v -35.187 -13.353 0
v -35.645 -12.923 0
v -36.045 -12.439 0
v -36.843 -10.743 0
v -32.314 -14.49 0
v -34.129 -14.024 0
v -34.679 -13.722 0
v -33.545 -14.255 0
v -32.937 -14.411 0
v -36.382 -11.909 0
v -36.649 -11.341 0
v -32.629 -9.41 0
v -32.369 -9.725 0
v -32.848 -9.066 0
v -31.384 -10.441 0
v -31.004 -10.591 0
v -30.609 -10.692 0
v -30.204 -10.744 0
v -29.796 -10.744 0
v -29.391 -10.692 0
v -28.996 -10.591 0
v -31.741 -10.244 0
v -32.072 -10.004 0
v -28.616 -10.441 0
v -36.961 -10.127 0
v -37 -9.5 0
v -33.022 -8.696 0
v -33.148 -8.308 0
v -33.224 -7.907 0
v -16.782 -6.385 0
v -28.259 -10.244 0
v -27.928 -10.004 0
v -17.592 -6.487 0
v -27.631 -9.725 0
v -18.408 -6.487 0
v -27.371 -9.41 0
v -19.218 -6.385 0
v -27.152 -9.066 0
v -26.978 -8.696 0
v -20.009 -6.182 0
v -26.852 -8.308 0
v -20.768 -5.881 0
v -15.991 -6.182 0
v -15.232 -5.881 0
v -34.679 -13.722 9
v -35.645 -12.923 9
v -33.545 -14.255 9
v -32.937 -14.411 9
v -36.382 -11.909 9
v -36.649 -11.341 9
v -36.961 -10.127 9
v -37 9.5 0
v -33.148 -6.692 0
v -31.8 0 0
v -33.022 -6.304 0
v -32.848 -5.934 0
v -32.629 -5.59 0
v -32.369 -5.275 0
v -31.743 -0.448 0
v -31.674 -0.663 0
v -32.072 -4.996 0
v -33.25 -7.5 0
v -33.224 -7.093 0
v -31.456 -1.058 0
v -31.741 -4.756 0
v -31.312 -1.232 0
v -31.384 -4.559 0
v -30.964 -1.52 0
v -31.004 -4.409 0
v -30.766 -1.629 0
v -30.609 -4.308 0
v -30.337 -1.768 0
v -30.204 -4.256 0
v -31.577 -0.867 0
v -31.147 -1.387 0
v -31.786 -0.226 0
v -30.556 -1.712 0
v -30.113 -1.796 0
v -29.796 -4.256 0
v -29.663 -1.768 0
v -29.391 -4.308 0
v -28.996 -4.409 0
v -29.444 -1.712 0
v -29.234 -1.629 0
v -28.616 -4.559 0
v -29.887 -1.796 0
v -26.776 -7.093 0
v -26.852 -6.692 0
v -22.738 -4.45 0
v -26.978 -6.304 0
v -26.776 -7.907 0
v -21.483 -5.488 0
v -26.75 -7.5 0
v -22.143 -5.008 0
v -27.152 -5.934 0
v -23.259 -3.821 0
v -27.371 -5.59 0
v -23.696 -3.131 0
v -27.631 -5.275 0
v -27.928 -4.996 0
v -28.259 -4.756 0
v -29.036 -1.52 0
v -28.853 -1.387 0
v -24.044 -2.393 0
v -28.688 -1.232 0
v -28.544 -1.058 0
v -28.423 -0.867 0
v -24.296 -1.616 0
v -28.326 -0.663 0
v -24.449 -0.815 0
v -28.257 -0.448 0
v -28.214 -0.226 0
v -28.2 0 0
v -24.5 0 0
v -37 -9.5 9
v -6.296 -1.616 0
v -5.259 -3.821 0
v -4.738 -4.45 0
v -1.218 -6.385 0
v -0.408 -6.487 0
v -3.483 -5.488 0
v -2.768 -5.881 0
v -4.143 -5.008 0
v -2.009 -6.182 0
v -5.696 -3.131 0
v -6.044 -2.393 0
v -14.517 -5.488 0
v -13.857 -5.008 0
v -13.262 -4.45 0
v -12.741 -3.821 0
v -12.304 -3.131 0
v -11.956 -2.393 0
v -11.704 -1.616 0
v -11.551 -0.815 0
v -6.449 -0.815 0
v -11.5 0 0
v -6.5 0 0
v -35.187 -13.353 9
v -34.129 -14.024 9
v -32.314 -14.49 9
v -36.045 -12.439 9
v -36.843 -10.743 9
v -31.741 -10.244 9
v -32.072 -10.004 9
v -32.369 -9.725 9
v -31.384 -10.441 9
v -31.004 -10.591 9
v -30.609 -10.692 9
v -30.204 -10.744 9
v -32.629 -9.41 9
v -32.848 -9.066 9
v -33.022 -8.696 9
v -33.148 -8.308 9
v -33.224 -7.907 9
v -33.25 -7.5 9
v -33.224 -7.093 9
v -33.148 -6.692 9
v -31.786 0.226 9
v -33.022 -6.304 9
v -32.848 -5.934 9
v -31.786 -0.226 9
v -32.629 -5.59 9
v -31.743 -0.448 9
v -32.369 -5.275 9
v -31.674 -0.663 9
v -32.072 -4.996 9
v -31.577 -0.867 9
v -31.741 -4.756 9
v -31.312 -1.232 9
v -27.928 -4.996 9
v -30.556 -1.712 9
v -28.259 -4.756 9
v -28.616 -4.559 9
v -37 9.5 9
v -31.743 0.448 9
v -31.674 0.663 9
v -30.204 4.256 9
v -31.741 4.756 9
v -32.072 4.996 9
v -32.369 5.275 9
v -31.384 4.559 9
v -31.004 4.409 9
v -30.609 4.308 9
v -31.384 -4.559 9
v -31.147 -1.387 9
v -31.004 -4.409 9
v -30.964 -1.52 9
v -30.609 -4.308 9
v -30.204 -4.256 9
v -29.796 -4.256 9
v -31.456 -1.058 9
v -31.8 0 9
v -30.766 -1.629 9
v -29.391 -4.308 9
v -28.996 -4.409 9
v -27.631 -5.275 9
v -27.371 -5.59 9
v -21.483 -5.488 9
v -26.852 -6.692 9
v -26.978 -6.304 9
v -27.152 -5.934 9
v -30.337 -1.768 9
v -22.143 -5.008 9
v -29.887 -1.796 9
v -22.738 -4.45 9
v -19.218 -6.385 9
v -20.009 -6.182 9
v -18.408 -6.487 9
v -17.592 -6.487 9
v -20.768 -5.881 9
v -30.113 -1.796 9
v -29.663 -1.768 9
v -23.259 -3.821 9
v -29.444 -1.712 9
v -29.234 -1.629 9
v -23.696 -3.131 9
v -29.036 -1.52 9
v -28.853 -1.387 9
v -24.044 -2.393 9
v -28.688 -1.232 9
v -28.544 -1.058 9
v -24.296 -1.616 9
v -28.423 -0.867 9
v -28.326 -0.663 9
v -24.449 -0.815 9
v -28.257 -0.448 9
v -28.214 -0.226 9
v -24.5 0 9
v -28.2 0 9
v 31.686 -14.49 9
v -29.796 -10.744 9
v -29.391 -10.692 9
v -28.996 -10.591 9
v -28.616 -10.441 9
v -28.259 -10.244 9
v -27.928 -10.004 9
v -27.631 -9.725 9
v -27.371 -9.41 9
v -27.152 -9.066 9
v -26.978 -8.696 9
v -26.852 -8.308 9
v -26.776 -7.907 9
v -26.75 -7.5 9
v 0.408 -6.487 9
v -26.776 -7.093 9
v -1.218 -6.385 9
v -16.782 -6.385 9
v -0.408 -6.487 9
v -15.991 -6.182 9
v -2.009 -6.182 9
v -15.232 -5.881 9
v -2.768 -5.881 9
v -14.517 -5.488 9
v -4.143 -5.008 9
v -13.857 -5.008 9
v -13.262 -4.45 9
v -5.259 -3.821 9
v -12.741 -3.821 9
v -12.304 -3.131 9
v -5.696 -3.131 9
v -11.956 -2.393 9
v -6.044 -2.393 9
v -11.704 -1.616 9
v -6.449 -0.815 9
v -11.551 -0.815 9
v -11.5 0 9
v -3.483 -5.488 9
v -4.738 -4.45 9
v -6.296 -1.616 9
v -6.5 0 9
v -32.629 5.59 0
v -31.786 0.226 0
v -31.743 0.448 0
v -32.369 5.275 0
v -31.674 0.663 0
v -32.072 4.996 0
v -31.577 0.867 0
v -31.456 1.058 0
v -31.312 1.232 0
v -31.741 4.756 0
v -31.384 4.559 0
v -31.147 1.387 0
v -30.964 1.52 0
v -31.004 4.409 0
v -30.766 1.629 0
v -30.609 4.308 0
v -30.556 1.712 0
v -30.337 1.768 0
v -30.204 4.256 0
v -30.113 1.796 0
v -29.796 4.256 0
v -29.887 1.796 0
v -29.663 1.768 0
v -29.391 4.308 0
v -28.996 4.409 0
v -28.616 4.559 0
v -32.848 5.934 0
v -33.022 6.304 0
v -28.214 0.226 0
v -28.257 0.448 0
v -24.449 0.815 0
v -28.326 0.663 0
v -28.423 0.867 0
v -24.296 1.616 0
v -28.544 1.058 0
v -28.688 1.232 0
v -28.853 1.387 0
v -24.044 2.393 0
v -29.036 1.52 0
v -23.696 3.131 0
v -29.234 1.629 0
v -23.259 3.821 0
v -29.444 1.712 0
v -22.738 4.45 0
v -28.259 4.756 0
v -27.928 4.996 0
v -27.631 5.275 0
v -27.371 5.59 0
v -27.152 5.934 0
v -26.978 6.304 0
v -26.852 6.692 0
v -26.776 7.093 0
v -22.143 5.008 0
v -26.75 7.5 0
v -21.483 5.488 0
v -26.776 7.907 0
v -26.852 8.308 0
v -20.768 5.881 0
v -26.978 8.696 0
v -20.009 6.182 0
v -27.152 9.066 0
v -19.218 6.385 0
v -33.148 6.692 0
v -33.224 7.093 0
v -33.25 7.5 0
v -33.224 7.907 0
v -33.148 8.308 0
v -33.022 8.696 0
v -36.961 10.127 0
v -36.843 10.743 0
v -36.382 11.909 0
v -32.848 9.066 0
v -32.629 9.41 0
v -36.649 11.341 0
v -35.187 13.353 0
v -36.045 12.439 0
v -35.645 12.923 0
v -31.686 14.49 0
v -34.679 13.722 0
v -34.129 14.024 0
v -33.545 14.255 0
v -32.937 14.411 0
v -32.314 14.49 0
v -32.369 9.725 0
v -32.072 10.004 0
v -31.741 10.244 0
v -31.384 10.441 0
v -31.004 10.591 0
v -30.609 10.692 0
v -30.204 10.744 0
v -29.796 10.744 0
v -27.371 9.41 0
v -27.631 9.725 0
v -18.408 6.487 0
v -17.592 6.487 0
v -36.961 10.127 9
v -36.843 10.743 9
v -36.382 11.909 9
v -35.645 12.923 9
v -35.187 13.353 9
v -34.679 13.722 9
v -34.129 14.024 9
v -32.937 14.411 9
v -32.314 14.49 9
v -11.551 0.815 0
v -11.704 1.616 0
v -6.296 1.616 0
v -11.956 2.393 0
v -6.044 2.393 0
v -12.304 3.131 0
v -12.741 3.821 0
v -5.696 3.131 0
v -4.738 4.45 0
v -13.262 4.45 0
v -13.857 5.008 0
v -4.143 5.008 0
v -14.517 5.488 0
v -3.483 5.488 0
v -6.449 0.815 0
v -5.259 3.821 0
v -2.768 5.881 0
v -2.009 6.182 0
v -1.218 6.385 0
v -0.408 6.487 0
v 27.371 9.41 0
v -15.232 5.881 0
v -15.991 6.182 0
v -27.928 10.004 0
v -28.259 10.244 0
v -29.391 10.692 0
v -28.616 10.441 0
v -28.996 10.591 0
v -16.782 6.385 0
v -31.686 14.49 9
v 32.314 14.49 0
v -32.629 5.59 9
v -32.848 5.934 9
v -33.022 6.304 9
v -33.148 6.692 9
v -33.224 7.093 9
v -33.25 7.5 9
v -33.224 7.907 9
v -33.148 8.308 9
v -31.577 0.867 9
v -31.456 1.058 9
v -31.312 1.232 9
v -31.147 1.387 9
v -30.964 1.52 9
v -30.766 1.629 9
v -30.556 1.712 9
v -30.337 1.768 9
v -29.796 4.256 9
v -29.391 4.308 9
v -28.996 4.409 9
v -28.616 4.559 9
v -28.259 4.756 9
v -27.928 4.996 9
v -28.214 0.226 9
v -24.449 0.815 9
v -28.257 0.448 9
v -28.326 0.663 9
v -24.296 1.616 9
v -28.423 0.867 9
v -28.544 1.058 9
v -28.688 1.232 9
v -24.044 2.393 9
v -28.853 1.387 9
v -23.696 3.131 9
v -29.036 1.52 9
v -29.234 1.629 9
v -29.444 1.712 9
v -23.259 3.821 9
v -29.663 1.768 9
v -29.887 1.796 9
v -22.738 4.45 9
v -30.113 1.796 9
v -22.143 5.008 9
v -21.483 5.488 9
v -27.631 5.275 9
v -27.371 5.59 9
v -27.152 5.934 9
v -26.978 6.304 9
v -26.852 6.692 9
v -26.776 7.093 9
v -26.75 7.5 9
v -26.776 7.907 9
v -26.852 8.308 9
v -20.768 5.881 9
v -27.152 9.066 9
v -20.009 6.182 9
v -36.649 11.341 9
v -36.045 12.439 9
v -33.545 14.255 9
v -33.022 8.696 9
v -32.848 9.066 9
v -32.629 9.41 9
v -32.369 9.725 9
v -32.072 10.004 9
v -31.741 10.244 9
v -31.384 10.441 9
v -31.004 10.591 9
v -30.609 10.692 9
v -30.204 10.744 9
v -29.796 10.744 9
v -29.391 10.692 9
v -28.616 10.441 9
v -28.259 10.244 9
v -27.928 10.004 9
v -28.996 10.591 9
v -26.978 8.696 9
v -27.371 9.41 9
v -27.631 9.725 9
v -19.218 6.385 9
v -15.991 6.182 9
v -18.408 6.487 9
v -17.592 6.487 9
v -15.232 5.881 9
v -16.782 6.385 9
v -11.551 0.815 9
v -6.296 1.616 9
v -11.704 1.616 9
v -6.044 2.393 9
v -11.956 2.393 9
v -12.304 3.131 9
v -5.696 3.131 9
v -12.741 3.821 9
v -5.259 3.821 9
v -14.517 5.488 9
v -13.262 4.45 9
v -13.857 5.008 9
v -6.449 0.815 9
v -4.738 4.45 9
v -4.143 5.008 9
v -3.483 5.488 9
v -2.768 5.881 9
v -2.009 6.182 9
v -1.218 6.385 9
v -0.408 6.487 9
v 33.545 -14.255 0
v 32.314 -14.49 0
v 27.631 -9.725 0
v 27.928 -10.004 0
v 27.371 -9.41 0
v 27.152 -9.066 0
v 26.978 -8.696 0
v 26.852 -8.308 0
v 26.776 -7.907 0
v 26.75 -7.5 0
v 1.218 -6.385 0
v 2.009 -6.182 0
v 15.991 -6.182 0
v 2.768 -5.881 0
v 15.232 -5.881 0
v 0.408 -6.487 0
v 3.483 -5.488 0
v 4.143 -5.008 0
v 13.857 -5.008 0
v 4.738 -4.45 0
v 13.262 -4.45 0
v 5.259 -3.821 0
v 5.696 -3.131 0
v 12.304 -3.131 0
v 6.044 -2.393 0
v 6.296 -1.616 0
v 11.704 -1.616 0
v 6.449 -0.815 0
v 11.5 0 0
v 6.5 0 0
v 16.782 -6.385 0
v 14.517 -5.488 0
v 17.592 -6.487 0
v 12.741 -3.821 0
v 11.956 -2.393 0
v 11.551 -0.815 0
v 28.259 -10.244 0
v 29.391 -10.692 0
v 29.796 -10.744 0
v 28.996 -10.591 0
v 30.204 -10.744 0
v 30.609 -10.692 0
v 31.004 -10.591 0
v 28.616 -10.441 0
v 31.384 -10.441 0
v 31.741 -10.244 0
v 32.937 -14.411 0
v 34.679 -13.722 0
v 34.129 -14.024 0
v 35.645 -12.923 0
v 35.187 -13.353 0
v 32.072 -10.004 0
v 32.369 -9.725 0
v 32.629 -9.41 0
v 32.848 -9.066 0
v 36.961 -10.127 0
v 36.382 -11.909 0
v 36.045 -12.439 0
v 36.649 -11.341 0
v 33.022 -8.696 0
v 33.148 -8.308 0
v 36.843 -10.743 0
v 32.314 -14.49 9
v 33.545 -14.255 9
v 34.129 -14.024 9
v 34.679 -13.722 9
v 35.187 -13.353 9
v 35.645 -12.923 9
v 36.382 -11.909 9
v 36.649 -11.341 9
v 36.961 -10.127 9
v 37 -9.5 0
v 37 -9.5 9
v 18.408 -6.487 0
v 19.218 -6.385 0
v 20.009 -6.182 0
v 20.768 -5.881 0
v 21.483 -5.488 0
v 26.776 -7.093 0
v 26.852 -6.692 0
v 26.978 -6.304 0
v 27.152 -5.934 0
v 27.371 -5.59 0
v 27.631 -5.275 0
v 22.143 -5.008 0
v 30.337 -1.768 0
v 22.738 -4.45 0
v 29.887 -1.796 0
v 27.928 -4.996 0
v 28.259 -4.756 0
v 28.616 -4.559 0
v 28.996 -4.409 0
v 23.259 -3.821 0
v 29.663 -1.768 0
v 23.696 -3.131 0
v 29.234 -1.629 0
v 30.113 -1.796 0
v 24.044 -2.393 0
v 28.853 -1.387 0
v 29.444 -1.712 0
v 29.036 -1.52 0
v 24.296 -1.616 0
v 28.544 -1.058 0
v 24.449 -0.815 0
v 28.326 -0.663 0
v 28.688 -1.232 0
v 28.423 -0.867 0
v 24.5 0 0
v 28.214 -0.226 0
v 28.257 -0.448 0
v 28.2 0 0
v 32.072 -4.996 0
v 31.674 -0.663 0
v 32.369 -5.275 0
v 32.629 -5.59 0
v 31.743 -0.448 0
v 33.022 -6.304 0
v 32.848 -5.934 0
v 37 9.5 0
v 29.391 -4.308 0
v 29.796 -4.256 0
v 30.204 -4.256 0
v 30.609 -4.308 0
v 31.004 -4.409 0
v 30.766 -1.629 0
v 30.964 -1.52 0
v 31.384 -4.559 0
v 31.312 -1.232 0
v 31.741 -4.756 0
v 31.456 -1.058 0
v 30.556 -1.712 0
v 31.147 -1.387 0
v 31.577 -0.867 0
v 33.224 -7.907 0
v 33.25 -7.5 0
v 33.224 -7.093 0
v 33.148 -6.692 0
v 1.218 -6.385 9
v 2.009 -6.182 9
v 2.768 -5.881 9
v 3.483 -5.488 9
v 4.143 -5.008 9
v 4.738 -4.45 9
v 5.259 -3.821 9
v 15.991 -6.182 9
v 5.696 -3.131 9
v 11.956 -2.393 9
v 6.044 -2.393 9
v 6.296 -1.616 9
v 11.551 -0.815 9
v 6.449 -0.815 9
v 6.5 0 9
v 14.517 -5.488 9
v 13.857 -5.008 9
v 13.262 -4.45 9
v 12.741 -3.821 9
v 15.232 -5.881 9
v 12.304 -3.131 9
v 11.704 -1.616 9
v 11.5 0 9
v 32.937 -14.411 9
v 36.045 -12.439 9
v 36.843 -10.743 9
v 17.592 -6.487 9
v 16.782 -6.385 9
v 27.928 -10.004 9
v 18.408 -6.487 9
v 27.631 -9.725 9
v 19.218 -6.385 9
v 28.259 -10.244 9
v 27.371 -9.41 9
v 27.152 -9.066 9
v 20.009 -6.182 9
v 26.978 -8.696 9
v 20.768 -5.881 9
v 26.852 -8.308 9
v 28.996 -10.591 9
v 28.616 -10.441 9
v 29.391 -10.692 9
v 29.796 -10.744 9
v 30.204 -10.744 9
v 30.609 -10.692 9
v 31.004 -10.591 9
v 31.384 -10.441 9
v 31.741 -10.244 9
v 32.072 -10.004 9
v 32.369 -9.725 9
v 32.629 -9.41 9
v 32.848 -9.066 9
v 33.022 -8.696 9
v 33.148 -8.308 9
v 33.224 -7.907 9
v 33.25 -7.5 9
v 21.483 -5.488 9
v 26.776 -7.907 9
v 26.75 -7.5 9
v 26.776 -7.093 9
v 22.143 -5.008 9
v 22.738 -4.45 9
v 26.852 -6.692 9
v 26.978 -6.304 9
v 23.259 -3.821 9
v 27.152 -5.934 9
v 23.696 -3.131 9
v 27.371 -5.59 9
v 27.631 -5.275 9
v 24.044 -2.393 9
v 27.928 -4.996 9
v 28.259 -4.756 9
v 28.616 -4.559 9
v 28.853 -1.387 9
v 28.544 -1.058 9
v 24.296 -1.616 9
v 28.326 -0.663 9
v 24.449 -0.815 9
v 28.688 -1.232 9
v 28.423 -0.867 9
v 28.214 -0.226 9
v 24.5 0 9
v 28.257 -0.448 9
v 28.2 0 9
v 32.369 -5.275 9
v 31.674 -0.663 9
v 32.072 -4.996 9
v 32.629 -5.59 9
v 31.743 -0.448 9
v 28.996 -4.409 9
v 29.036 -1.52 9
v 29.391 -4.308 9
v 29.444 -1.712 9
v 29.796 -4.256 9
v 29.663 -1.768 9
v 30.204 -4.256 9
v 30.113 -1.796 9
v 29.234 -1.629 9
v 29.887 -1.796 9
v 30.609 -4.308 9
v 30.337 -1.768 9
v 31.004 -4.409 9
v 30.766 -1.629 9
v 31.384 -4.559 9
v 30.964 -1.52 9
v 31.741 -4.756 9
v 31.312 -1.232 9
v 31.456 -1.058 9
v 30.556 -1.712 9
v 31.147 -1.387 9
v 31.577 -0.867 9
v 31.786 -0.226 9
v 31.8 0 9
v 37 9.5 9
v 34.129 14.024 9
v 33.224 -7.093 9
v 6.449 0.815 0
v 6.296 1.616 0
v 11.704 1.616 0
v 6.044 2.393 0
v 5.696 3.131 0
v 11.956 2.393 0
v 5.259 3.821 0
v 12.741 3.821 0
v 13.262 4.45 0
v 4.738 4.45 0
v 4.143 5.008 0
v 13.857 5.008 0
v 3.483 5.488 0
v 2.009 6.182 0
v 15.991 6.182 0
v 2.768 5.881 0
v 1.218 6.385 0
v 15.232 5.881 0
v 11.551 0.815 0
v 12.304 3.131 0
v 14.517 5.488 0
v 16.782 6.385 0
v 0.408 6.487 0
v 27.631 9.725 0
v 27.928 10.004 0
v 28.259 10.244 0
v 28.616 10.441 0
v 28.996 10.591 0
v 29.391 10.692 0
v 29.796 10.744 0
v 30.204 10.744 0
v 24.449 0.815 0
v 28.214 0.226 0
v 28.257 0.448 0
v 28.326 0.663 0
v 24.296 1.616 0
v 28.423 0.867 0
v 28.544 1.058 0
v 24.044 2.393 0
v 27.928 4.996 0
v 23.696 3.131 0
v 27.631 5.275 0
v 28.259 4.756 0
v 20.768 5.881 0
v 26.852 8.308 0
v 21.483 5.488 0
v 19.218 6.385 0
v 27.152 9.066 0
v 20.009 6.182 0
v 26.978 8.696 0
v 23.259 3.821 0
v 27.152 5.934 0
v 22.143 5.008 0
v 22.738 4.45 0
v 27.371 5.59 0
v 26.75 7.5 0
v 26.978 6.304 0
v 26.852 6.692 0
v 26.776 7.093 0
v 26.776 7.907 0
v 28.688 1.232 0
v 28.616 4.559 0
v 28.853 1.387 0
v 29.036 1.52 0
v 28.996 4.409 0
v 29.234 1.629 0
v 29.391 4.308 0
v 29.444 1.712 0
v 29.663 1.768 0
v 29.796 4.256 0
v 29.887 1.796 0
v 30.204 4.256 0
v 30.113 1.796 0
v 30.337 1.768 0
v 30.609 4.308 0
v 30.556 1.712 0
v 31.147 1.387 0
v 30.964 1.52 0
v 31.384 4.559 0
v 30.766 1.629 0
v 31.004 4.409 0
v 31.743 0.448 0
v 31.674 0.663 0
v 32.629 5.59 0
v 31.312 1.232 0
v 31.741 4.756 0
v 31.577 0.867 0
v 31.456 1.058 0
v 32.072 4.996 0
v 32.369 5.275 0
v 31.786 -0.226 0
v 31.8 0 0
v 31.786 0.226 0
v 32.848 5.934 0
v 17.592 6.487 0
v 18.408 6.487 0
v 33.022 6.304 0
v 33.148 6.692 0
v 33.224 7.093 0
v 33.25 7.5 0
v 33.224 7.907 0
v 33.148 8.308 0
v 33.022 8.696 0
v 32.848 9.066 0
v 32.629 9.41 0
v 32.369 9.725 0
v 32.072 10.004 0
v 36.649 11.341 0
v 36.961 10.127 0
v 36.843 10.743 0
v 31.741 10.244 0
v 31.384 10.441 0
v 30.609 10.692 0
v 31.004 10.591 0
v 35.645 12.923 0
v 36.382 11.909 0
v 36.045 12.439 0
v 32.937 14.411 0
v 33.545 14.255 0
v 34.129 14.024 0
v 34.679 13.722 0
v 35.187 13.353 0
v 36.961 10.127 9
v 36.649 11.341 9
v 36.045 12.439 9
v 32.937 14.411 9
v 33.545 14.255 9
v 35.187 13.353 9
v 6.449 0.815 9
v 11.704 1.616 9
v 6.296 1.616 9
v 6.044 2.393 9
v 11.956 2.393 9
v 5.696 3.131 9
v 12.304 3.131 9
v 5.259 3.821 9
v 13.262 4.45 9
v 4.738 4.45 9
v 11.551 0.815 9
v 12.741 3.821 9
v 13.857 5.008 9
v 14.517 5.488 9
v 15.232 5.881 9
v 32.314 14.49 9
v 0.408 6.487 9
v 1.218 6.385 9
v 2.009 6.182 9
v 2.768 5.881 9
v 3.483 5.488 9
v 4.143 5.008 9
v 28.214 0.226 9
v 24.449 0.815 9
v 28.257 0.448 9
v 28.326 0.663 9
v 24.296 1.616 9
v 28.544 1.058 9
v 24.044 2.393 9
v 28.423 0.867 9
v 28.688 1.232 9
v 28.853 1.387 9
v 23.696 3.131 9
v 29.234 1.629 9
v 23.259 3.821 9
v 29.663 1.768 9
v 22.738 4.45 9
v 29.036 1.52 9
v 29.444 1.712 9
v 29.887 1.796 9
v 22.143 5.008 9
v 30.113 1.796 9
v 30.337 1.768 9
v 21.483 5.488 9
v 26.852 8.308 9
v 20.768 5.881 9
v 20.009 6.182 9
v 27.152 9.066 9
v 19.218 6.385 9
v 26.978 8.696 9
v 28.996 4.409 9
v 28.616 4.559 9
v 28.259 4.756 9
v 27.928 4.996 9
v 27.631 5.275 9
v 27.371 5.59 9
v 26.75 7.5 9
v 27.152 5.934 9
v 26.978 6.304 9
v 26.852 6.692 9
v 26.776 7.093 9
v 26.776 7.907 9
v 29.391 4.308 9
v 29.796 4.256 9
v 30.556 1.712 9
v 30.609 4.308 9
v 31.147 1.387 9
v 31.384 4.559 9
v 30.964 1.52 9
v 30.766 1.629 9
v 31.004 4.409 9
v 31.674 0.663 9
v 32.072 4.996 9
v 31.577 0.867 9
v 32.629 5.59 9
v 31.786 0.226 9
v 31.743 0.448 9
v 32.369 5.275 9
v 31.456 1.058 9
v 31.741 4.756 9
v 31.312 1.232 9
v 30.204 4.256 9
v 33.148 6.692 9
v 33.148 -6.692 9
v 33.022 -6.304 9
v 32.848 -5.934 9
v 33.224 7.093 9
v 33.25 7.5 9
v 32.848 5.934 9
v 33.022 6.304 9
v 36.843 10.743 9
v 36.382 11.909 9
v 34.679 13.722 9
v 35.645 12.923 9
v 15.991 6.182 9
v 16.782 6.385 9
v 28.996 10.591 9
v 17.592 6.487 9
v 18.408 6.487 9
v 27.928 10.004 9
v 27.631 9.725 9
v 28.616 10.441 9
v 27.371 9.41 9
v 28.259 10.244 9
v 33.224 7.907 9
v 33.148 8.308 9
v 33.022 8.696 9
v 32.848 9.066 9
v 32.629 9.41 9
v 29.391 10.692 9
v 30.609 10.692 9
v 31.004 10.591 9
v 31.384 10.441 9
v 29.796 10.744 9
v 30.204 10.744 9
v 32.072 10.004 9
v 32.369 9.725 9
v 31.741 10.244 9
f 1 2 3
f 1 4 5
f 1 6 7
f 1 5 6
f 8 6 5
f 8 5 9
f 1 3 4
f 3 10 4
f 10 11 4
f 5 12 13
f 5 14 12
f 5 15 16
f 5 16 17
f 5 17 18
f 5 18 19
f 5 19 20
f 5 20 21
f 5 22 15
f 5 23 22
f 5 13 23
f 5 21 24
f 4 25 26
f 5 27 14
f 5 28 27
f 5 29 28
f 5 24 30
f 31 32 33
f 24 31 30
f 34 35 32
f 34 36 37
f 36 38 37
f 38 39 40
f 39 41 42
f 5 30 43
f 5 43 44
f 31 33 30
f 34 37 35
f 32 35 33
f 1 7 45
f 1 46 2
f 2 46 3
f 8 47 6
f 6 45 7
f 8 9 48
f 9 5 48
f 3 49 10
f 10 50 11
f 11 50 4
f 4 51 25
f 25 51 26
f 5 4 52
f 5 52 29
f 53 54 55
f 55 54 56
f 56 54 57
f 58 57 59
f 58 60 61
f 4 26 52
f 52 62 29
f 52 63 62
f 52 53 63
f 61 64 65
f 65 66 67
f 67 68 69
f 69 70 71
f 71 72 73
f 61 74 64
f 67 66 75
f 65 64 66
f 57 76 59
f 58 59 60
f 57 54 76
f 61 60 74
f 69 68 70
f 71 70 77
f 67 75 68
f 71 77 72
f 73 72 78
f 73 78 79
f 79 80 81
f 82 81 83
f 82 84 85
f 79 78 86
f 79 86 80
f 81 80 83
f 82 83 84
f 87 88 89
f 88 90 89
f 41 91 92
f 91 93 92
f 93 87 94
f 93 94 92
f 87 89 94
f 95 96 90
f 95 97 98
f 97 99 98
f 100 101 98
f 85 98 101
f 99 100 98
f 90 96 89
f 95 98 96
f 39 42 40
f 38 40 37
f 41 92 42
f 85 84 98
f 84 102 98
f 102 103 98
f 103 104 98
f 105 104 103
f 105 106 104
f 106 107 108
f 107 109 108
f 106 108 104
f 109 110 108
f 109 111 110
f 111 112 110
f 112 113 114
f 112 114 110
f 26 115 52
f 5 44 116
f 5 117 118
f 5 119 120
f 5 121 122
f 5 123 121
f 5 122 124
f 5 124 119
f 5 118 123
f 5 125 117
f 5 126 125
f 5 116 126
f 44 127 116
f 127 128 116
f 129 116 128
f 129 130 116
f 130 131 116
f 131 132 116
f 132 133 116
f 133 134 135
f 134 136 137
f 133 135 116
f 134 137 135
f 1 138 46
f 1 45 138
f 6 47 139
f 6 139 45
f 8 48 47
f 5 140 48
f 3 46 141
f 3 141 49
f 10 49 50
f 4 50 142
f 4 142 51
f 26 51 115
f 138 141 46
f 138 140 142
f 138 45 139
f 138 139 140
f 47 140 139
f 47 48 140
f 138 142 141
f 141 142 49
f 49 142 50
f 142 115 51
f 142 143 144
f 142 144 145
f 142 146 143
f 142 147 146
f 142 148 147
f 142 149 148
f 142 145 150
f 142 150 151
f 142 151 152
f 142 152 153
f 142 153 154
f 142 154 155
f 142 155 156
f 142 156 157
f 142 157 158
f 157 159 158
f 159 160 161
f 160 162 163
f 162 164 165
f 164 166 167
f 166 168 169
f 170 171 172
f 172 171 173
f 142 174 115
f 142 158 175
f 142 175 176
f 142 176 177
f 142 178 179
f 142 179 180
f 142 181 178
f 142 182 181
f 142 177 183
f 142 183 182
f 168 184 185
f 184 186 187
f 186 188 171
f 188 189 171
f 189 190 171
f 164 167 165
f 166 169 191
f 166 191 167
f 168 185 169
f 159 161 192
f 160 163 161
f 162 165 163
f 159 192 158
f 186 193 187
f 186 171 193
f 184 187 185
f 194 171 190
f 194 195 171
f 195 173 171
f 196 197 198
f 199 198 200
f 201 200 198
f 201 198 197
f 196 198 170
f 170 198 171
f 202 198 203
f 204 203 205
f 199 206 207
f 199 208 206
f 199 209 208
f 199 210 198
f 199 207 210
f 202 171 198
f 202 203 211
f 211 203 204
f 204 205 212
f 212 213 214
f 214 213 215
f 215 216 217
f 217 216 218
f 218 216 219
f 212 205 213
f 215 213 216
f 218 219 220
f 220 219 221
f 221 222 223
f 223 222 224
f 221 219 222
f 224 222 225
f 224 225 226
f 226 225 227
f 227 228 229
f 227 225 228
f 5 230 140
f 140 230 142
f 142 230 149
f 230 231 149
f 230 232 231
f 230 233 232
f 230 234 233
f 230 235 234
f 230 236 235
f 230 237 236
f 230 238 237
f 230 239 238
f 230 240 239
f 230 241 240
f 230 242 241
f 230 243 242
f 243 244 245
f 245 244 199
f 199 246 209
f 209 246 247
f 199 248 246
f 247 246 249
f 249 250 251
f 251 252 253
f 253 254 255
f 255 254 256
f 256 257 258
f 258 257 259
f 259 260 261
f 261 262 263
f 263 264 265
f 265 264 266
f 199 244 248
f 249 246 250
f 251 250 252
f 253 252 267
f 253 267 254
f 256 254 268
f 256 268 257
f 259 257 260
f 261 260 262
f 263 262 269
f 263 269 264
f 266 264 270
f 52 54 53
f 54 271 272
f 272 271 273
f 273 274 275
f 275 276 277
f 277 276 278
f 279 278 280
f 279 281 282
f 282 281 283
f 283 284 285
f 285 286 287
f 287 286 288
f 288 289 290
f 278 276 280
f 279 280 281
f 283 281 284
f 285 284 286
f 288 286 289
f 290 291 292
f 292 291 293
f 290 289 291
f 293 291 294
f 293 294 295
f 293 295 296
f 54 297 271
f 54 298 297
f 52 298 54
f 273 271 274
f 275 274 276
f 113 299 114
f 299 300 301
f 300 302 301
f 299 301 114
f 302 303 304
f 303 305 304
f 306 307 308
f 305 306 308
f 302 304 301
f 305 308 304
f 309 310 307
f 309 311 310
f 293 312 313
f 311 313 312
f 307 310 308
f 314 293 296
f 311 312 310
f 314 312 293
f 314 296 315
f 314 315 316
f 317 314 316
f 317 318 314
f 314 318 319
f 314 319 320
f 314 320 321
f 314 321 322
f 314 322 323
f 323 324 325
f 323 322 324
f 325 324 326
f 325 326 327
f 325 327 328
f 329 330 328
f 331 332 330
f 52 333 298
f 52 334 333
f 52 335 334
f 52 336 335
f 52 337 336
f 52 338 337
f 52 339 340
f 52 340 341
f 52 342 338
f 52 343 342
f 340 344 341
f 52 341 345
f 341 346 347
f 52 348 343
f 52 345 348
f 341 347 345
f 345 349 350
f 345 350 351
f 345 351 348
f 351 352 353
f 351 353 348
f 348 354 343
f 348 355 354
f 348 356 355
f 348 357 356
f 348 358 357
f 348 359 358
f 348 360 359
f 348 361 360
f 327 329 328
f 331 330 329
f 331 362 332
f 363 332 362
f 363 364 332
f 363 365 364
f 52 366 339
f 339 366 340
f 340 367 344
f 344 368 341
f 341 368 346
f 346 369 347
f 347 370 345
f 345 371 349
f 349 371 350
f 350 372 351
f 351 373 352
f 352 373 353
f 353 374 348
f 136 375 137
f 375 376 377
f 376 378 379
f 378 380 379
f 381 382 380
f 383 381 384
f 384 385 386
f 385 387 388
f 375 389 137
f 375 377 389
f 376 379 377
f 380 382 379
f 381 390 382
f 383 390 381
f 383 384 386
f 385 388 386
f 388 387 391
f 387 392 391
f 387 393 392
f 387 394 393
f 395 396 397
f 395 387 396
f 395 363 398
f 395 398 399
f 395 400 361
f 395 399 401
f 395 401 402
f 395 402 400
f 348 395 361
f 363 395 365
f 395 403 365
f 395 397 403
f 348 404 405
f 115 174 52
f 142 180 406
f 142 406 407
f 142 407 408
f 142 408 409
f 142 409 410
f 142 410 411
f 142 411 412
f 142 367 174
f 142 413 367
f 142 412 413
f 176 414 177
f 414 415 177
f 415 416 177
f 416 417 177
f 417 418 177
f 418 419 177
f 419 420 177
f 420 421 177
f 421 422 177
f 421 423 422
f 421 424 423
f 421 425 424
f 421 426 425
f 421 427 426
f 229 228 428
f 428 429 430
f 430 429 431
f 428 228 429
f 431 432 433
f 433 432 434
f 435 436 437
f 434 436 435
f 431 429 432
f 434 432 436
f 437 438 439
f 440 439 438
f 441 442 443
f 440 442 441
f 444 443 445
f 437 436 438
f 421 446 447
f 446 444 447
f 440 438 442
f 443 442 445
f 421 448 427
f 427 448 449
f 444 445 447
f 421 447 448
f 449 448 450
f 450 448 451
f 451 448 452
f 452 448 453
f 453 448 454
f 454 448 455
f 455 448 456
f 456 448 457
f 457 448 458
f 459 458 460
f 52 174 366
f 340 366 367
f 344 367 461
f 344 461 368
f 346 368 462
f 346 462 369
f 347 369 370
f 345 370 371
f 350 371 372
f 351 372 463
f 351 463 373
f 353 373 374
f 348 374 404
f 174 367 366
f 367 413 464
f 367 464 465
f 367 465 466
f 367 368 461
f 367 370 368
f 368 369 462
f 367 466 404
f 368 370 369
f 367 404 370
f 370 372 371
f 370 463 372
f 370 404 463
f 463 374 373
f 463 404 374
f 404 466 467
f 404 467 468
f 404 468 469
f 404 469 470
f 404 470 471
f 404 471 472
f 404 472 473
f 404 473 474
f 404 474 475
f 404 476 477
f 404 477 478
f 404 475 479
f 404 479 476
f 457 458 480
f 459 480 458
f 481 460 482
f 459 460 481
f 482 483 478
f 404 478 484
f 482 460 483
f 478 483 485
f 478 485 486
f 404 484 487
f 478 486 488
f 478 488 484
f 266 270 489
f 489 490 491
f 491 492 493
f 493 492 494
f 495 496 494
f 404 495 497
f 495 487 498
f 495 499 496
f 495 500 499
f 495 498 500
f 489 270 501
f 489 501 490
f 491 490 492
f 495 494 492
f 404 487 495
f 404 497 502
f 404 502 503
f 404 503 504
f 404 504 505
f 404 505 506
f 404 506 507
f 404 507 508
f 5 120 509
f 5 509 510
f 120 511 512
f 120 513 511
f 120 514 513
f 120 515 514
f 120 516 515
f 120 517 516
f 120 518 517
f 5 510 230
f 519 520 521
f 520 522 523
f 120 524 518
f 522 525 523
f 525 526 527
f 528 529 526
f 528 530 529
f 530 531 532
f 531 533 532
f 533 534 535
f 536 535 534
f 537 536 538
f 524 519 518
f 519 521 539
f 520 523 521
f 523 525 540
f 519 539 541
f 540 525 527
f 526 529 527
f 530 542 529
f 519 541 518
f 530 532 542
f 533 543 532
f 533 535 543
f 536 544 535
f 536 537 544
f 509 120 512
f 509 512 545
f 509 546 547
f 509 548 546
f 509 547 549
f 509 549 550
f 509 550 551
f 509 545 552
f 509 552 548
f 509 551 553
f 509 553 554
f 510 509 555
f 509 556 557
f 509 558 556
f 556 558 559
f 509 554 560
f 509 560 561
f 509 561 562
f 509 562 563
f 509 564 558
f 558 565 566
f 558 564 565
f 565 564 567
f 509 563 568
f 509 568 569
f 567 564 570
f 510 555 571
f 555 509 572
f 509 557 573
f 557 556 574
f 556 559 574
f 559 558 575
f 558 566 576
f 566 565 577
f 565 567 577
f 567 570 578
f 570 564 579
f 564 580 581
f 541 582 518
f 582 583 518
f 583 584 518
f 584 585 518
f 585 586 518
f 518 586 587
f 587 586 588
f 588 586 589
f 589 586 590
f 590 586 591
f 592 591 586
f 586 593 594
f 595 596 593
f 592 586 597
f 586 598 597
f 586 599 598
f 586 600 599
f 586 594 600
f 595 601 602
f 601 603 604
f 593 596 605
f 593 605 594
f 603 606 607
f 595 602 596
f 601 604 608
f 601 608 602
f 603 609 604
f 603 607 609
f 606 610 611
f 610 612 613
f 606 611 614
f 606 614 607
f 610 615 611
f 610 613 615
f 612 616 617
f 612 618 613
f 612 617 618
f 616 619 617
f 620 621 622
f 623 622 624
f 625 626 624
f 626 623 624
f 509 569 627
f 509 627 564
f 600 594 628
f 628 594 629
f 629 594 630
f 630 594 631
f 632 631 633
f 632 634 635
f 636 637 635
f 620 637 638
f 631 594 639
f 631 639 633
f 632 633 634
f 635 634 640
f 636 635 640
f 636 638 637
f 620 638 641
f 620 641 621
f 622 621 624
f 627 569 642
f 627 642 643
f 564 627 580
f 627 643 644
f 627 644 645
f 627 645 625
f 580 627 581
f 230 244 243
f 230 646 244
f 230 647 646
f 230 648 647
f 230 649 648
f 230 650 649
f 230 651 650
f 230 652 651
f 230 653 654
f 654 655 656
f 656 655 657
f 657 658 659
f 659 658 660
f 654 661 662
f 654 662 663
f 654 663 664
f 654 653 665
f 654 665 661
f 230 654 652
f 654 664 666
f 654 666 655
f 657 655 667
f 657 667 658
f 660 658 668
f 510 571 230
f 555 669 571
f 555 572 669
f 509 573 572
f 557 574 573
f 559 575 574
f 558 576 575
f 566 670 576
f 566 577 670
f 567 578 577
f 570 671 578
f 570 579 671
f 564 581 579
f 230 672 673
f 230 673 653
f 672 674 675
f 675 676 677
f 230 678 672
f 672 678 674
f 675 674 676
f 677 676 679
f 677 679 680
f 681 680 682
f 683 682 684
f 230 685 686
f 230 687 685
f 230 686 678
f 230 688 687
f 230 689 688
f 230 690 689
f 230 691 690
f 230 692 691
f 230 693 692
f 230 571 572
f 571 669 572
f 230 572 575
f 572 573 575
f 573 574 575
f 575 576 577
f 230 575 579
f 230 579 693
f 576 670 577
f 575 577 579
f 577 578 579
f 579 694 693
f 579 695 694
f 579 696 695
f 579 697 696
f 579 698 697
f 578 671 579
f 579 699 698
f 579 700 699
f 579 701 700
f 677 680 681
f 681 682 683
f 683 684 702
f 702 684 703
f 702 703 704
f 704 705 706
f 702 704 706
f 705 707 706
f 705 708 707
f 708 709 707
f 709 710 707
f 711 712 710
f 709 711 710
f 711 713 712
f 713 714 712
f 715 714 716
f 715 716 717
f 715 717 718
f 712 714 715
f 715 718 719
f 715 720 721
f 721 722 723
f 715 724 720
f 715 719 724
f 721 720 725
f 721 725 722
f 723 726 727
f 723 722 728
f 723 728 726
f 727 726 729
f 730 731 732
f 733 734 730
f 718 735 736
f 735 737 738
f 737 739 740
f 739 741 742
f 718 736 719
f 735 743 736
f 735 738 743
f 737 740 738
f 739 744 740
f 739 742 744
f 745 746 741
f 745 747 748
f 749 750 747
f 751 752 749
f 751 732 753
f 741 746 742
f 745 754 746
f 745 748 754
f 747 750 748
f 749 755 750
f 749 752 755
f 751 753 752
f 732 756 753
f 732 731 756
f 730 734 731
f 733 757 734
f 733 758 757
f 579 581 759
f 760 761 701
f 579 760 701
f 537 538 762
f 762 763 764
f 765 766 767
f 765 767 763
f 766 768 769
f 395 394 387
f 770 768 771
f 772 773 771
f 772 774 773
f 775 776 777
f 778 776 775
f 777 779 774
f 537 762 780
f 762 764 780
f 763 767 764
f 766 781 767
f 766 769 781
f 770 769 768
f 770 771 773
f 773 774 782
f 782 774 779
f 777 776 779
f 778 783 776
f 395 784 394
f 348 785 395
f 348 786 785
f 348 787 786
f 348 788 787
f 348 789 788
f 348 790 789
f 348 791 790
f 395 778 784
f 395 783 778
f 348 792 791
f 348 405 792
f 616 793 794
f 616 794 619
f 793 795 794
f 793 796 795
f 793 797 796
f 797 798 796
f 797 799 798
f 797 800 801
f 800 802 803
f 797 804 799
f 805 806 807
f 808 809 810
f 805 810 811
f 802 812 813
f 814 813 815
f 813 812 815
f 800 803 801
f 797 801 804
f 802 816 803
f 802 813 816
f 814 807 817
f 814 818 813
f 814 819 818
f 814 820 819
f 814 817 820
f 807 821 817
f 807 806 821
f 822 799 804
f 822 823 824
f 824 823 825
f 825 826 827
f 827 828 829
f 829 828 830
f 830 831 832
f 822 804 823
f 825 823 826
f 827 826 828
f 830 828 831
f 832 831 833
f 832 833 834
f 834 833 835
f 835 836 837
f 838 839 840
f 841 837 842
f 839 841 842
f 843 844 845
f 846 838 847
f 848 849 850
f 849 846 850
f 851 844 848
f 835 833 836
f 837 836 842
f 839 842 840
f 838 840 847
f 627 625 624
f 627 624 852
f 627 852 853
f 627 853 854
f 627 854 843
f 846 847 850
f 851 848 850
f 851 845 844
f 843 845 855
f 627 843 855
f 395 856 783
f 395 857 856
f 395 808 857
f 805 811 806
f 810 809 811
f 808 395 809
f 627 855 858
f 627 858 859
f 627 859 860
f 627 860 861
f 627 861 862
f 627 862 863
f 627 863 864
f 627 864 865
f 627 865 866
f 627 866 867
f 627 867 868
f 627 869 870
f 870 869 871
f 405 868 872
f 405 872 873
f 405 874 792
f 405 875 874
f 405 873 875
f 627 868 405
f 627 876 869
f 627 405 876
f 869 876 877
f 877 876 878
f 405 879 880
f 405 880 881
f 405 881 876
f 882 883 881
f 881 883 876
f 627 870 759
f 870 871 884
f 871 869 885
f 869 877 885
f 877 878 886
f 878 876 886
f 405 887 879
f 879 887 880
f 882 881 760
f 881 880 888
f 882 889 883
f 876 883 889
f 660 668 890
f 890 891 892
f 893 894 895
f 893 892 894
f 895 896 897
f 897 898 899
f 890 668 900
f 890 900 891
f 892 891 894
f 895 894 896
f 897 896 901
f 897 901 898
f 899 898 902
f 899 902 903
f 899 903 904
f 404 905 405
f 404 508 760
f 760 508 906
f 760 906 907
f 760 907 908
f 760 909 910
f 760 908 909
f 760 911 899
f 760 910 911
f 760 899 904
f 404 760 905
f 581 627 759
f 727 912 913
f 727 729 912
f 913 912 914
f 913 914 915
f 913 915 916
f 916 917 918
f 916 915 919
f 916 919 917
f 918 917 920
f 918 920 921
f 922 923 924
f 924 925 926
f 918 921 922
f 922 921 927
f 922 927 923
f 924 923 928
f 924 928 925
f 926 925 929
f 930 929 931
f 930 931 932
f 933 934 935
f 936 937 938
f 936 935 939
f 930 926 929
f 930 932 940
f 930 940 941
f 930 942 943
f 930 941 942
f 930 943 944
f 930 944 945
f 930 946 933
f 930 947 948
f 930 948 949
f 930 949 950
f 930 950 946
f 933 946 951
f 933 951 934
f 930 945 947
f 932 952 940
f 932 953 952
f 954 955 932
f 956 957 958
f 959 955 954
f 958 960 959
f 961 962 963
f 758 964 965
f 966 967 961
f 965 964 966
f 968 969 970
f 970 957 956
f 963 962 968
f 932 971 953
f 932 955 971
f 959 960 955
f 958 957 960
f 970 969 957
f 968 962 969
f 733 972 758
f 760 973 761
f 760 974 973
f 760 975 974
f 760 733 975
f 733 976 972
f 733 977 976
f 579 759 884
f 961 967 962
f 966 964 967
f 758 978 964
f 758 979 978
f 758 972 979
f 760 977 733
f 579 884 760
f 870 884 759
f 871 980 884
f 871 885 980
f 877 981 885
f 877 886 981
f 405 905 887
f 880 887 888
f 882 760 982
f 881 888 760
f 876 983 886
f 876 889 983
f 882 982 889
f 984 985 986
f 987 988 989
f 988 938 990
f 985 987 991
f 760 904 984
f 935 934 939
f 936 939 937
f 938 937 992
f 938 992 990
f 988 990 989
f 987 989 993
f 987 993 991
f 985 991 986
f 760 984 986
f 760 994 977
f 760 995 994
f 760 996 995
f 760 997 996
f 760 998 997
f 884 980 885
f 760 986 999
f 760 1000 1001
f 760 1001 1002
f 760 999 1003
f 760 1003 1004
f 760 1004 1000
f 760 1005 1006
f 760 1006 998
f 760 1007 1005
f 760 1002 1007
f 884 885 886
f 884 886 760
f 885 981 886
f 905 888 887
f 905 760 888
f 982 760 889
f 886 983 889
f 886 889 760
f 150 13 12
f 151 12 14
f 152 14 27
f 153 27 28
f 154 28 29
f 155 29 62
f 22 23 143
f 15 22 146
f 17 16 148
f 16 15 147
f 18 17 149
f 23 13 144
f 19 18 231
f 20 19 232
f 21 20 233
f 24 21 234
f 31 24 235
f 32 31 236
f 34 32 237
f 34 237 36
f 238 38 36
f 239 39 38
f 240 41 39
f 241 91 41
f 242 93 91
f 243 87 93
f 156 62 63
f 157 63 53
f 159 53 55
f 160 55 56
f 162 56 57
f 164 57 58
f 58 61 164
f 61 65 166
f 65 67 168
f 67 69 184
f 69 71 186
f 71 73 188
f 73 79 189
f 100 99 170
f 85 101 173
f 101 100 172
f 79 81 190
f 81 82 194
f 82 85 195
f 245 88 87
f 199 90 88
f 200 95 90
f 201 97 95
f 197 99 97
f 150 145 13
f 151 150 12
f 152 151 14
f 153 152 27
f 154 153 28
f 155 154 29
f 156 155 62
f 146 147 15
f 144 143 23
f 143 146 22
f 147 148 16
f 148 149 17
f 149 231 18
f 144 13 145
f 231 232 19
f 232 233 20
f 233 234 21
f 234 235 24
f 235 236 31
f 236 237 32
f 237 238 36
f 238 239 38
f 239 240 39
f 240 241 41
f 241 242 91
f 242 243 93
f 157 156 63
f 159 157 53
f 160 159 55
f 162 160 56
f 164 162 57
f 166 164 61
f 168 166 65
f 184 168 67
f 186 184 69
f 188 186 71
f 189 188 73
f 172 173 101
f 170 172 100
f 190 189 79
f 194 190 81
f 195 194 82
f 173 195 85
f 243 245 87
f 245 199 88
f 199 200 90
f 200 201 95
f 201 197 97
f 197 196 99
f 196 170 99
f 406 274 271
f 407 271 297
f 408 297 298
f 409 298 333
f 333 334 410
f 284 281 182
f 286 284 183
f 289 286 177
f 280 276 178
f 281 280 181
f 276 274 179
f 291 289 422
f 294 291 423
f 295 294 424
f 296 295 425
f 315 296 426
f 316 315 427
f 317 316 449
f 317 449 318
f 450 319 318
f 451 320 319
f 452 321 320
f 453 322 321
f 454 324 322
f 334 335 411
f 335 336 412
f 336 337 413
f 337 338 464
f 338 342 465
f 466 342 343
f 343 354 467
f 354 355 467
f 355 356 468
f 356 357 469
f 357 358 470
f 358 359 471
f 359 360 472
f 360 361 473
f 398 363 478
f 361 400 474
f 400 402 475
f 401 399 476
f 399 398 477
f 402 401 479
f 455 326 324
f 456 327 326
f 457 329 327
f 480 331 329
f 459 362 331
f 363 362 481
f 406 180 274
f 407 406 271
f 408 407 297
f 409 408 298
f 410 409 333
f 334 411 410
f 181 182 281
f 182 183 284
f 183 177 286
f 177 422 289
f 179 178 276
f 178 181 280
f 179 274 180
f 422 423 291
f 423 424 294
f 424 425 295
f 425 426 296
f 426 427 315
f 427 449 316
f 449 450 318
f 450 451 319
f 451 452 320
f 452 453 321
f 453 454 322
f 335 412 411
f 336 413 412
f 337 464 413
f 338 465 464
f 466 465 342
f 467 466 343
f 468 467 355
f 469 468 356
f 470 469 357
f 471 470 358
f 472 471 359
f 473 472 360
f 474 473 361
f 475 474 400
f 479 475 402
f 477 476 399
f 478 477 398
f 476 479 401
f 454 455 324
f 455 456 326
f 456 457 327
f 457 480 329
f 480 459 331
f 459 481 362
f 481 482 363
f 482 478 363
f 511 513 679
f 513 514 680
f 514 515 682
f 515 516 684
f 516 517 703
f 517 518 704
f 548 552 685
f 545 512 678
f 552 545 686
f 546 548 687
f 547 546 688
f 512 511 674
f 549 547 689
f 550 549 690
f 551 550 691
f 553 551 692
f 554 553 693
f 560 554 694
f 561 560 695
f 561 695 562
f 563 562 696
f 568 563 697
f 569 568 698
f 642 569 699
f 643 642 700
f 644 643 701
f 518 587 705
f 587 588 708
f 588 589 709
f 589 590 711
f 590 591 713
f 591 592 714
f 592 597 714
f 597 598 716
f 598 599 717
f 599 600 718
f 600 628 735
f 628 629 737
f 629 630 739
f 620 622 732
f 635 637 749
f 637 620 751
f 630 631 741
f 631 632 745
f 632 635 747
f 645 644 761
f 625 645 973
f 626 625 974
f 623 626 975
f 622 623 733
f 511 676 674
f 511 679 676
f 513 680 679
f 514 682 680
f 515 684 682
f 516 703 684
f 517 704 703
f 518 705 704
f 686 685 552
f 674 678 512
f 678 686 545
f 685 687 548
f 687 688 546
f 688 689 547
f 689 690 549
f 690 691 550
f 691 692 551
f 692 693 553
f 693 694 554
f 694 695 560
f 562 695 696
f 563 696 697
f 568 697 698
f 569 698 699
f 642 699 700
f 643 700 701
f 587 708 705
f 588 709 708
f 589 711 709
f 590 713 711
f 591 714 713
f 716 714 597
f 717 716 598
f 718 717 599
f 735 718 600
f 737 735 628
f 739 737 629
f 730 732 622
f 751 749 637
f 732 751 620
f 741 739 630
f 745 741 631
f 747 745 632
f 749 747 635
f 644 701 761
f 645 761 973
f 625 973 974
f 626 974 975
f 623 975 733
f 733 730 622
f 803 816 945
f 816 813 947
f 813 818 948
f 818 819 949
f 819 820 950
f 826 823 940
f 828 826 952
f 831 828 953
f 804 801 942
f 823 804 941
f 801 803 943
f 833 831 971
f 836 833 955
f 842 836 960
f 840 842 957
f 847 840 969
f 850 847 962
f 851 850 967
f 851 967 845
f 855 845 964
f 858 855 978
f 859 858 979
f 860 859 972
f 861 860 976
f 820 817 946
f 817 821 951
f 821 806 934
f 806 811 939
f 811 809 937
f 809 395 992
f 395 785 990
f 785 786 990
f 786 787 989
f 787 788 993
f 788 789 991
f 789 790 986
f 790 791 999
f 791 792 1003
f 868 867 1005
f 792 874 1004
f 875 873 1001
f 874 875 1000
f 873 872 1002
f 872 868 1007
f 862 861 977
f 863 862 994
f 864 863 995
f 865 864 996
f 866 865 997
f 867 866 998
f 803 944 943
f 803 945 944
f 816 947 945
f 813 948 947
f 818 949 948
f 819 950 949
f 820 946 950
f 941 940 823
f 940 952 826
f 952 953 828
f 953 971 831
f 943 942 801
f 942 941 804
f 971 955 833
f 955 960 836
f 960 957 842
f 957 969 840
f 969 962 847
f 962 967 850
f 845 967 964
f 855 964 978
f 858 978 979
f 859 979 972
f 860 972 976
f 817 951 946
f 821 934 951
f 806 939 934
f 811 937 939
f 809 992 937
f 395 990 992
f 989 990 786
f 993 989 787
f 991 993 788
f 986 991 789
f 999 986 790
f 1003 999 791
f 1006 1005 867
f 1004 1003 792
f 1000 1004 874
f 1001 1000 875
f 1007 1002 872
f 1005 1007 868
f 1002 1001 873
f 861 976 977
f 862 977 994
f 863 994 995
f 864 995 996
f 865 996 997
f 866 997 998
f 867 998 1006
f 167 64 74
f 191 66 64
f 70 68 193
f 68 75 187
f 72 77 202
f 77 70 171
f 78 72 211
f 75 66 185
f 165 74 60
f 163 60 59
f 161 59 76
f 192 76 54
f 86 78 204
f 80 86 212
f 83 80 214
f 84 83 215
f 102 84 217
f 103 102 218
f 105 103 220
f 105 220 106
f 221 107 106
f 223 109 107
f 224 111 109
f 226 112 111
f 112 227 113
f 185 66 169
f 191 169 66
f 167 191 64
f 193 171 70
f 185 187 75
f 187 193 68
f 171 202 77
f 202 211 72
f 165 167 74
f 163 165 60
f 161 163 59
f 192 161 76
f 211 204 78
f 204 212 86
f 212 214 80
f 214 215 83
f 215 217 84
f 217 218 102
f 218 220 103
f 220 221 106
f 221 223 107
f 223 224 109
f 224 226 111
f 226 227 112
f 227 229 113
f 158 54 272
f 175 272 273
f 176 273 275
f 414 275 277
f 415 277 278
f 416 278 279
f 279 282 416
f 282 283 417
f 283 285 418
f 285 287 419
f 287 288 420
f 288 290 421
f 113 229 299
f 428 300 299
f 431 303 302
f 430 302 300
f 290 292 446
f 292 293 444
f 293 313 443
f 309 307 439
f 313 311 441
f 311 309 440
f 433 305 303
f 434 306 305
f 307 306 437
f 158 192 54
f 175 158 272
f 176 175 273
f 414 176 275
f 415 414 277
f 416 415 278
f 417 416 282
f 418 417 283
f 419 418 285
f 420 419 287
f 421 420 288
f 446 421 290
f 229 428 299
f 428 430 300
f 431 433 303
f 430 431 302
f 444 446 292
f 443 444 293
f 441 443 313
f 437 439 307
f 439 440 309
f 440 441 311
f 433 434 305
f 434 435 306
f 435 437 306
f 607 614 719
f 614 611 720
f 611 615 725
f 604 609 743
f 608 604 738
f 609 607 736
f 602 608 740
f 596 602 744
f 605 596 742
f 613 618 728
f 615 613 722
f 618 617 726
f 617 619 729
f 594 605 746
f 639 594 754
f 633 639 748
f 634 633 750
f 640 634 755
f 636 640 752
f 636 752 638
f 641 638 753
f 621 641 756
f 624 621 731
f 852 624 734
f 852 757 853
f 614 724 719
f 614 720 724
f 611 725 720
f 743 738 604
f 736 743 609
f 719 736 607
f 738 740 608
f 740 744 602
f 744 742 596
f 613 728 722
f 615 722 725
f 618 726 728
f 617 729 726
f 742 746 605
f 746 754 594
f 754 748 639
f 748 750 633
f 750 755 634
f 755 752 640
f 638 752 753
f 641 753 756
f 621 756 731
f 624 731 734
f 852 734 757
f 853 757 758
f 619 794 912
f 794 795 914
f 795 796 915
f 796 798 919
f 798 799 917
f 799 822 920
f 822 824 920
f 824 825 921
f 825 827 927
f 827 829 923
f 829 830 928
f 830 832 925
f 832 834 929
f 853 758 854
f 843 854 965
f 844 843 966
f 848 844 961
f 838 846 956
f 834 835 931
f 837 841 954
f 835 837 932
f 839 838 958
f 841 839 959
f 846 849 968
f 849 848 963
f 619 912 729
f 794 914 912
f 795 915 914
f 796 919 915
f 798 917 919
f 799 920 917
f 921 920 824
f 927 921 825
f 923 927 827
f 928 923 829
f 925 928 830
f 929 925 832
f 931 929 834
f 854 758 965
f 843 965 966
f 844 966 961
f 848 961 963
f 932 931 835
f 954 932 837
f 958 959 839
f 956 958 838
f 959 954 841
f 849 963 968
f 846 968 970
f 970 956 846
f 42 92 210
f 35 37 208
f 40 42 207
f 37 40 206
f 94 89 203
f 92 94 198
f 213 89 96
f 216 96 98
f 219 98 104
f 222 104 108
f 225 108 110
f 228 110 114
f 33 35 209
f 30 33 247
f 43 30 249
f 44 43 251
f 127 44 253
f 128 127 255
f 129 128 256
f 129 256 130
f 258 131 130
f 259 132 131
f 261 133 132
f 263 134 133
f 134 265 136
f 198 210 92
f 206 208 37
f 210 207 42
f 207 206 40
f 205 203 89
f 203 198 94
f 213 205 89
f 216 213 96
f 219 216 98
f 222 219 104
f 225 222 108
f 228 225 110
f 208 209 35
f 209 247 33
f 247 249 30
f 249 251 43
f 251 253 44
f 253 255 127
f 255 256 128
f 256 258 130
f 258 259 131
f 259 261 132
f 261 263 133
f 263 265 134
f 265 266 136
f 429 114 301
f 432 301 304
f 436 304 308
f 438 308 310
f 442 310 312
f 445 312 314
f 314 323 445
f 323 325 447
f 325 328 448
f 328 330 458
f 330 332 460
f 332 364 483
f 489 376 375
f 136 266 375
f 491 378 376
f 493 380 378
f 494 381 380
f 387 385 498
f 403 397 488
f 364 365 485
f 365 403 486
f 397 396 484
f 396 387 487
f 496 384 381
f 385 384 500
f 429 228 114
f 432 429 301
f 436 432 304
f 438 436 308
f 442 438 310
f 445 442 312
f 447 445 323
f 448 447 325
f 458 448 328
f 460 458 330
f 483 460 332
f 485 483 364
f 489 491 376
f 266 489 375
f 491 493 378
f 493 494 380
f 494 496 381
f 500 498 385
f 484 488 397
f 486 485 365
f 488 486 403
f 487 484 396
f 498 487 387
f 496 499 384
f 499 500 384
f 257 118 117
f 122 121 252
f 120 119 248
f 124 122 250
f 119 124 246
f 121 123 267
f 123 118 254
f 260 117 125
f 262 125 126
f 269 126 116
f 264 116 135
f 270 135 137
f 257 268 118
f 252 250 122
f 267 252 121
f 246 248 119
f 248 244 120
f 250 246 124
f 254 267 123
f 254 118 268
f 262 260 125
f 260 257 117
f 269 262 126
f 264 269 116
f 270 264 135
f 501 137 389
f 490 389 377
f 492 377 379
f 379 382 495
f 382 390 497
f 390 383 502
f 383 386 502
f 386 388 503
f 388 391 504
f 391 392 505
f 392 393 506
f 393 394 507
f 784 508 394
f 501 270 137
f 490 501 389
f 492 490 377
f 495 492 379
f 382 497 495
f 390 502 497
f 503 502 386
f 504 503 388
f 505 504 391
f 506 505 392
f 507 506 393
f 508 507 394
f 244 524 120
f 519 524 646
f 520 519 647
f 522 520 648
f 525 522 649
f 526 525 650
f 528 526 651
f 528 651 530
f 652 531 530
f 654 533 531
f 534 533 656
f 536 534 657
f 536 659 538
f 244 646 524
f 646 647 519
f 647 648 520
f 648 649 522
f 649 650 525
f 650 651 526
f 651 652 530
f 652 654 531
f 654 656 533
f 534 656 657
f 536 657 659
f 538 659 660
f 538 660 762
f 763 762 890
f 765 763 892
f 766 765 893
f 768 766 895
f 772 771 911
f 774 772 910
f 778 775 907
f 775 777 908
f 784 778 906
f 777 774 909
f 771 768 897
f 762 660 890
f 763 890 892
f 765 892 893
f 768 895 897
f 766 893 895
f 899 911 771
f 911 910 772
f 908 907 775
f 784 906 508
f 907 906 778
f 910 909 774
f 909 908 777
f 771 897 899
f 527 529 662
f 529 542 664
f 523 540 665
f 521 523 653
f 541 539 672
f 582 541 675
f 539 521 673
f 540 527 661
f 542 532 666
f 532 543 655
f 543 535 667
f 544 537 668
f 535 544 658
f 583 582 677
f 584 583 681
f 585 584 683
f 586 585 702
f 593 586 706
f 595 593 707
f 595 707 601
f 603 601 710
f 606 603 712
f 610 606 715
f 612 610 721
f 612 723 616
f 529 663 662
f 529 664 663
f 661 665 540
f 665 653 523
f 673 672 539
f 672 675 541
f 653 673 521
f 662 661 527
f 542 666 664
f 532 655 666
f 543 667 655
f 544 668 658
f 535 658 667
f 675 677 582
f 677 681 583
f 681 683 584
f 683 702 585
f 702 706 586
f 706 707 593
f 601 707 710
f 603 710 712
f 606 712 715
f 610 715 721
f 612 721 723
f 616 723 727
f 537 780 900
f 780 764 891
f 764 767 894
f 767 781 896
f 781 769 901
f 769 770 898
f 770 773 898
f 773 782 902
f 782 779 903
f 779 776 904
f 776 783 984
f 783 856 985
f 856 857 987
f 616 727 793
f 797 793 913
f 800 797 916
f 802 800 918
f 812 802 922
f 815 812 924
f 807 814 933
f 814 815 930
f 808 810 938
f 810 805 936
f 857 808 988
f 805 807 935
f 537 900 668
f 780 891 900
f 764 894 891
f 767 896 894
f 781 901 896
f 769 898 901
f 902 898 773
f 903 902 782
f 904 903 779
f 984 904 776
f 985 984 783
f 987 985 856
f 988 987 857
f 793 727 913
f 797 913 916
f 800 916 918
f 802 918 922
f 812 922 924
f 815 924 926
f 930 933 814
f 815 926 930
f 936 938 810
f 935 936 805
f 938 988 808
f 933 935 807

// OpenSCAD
$fn = 50;

difference() {
	union() {
		hull() {
			translate(v = [-32.0, 9.5, 0]) {
				cylinder(h = 9, r = 5);
			}
			translate(v = [32.0, 9.5, 0]) {
				cylinder(h = 9, r = 5);
			}
			translate(v = [-32.0, -9.5, 0]) {
				cylinder(h = 9, r = 5);
			}
			translate(v = [32.0, -9.5, 0]) {
				cylinder(h = 9, r = 5);
			}
		}
	}
	union() {
		translate(v = [-30.0, -7.5, 0]) {
			cylinder(h = 9, r = 3.25);
		}
		translate(v = [-30.0, 7.5, 0]) {
			cylinder(h = 9, r = 3.25);
		}
		translate(v = [30.0, -7.5, 0]) {
			cylinder(h = 9, r = 3.25);
		}
		translate(v = [30.0, 7.5, 0]) {
			cylinder(h = 9, r = 3.25);
		}
		translate(v = [-30.0, 0.0, 0]) {
			cylinder(h = 9, r = 1.8);
		}
		translate(v = [30.0, 0.0, 0]) {
			cylinder(h = 9, r = 1.8);
		}
		translate(v = [-18.0, 0, 0.0]) {
			cylinder(h = 9, r = 6.5);
		}
		cylinder(h = 9, r = 6.5);
		translate(v = [18.0, 0, 0.0]) {
			cylinder(h = 9, r = 6.5);
		}
	}
}
